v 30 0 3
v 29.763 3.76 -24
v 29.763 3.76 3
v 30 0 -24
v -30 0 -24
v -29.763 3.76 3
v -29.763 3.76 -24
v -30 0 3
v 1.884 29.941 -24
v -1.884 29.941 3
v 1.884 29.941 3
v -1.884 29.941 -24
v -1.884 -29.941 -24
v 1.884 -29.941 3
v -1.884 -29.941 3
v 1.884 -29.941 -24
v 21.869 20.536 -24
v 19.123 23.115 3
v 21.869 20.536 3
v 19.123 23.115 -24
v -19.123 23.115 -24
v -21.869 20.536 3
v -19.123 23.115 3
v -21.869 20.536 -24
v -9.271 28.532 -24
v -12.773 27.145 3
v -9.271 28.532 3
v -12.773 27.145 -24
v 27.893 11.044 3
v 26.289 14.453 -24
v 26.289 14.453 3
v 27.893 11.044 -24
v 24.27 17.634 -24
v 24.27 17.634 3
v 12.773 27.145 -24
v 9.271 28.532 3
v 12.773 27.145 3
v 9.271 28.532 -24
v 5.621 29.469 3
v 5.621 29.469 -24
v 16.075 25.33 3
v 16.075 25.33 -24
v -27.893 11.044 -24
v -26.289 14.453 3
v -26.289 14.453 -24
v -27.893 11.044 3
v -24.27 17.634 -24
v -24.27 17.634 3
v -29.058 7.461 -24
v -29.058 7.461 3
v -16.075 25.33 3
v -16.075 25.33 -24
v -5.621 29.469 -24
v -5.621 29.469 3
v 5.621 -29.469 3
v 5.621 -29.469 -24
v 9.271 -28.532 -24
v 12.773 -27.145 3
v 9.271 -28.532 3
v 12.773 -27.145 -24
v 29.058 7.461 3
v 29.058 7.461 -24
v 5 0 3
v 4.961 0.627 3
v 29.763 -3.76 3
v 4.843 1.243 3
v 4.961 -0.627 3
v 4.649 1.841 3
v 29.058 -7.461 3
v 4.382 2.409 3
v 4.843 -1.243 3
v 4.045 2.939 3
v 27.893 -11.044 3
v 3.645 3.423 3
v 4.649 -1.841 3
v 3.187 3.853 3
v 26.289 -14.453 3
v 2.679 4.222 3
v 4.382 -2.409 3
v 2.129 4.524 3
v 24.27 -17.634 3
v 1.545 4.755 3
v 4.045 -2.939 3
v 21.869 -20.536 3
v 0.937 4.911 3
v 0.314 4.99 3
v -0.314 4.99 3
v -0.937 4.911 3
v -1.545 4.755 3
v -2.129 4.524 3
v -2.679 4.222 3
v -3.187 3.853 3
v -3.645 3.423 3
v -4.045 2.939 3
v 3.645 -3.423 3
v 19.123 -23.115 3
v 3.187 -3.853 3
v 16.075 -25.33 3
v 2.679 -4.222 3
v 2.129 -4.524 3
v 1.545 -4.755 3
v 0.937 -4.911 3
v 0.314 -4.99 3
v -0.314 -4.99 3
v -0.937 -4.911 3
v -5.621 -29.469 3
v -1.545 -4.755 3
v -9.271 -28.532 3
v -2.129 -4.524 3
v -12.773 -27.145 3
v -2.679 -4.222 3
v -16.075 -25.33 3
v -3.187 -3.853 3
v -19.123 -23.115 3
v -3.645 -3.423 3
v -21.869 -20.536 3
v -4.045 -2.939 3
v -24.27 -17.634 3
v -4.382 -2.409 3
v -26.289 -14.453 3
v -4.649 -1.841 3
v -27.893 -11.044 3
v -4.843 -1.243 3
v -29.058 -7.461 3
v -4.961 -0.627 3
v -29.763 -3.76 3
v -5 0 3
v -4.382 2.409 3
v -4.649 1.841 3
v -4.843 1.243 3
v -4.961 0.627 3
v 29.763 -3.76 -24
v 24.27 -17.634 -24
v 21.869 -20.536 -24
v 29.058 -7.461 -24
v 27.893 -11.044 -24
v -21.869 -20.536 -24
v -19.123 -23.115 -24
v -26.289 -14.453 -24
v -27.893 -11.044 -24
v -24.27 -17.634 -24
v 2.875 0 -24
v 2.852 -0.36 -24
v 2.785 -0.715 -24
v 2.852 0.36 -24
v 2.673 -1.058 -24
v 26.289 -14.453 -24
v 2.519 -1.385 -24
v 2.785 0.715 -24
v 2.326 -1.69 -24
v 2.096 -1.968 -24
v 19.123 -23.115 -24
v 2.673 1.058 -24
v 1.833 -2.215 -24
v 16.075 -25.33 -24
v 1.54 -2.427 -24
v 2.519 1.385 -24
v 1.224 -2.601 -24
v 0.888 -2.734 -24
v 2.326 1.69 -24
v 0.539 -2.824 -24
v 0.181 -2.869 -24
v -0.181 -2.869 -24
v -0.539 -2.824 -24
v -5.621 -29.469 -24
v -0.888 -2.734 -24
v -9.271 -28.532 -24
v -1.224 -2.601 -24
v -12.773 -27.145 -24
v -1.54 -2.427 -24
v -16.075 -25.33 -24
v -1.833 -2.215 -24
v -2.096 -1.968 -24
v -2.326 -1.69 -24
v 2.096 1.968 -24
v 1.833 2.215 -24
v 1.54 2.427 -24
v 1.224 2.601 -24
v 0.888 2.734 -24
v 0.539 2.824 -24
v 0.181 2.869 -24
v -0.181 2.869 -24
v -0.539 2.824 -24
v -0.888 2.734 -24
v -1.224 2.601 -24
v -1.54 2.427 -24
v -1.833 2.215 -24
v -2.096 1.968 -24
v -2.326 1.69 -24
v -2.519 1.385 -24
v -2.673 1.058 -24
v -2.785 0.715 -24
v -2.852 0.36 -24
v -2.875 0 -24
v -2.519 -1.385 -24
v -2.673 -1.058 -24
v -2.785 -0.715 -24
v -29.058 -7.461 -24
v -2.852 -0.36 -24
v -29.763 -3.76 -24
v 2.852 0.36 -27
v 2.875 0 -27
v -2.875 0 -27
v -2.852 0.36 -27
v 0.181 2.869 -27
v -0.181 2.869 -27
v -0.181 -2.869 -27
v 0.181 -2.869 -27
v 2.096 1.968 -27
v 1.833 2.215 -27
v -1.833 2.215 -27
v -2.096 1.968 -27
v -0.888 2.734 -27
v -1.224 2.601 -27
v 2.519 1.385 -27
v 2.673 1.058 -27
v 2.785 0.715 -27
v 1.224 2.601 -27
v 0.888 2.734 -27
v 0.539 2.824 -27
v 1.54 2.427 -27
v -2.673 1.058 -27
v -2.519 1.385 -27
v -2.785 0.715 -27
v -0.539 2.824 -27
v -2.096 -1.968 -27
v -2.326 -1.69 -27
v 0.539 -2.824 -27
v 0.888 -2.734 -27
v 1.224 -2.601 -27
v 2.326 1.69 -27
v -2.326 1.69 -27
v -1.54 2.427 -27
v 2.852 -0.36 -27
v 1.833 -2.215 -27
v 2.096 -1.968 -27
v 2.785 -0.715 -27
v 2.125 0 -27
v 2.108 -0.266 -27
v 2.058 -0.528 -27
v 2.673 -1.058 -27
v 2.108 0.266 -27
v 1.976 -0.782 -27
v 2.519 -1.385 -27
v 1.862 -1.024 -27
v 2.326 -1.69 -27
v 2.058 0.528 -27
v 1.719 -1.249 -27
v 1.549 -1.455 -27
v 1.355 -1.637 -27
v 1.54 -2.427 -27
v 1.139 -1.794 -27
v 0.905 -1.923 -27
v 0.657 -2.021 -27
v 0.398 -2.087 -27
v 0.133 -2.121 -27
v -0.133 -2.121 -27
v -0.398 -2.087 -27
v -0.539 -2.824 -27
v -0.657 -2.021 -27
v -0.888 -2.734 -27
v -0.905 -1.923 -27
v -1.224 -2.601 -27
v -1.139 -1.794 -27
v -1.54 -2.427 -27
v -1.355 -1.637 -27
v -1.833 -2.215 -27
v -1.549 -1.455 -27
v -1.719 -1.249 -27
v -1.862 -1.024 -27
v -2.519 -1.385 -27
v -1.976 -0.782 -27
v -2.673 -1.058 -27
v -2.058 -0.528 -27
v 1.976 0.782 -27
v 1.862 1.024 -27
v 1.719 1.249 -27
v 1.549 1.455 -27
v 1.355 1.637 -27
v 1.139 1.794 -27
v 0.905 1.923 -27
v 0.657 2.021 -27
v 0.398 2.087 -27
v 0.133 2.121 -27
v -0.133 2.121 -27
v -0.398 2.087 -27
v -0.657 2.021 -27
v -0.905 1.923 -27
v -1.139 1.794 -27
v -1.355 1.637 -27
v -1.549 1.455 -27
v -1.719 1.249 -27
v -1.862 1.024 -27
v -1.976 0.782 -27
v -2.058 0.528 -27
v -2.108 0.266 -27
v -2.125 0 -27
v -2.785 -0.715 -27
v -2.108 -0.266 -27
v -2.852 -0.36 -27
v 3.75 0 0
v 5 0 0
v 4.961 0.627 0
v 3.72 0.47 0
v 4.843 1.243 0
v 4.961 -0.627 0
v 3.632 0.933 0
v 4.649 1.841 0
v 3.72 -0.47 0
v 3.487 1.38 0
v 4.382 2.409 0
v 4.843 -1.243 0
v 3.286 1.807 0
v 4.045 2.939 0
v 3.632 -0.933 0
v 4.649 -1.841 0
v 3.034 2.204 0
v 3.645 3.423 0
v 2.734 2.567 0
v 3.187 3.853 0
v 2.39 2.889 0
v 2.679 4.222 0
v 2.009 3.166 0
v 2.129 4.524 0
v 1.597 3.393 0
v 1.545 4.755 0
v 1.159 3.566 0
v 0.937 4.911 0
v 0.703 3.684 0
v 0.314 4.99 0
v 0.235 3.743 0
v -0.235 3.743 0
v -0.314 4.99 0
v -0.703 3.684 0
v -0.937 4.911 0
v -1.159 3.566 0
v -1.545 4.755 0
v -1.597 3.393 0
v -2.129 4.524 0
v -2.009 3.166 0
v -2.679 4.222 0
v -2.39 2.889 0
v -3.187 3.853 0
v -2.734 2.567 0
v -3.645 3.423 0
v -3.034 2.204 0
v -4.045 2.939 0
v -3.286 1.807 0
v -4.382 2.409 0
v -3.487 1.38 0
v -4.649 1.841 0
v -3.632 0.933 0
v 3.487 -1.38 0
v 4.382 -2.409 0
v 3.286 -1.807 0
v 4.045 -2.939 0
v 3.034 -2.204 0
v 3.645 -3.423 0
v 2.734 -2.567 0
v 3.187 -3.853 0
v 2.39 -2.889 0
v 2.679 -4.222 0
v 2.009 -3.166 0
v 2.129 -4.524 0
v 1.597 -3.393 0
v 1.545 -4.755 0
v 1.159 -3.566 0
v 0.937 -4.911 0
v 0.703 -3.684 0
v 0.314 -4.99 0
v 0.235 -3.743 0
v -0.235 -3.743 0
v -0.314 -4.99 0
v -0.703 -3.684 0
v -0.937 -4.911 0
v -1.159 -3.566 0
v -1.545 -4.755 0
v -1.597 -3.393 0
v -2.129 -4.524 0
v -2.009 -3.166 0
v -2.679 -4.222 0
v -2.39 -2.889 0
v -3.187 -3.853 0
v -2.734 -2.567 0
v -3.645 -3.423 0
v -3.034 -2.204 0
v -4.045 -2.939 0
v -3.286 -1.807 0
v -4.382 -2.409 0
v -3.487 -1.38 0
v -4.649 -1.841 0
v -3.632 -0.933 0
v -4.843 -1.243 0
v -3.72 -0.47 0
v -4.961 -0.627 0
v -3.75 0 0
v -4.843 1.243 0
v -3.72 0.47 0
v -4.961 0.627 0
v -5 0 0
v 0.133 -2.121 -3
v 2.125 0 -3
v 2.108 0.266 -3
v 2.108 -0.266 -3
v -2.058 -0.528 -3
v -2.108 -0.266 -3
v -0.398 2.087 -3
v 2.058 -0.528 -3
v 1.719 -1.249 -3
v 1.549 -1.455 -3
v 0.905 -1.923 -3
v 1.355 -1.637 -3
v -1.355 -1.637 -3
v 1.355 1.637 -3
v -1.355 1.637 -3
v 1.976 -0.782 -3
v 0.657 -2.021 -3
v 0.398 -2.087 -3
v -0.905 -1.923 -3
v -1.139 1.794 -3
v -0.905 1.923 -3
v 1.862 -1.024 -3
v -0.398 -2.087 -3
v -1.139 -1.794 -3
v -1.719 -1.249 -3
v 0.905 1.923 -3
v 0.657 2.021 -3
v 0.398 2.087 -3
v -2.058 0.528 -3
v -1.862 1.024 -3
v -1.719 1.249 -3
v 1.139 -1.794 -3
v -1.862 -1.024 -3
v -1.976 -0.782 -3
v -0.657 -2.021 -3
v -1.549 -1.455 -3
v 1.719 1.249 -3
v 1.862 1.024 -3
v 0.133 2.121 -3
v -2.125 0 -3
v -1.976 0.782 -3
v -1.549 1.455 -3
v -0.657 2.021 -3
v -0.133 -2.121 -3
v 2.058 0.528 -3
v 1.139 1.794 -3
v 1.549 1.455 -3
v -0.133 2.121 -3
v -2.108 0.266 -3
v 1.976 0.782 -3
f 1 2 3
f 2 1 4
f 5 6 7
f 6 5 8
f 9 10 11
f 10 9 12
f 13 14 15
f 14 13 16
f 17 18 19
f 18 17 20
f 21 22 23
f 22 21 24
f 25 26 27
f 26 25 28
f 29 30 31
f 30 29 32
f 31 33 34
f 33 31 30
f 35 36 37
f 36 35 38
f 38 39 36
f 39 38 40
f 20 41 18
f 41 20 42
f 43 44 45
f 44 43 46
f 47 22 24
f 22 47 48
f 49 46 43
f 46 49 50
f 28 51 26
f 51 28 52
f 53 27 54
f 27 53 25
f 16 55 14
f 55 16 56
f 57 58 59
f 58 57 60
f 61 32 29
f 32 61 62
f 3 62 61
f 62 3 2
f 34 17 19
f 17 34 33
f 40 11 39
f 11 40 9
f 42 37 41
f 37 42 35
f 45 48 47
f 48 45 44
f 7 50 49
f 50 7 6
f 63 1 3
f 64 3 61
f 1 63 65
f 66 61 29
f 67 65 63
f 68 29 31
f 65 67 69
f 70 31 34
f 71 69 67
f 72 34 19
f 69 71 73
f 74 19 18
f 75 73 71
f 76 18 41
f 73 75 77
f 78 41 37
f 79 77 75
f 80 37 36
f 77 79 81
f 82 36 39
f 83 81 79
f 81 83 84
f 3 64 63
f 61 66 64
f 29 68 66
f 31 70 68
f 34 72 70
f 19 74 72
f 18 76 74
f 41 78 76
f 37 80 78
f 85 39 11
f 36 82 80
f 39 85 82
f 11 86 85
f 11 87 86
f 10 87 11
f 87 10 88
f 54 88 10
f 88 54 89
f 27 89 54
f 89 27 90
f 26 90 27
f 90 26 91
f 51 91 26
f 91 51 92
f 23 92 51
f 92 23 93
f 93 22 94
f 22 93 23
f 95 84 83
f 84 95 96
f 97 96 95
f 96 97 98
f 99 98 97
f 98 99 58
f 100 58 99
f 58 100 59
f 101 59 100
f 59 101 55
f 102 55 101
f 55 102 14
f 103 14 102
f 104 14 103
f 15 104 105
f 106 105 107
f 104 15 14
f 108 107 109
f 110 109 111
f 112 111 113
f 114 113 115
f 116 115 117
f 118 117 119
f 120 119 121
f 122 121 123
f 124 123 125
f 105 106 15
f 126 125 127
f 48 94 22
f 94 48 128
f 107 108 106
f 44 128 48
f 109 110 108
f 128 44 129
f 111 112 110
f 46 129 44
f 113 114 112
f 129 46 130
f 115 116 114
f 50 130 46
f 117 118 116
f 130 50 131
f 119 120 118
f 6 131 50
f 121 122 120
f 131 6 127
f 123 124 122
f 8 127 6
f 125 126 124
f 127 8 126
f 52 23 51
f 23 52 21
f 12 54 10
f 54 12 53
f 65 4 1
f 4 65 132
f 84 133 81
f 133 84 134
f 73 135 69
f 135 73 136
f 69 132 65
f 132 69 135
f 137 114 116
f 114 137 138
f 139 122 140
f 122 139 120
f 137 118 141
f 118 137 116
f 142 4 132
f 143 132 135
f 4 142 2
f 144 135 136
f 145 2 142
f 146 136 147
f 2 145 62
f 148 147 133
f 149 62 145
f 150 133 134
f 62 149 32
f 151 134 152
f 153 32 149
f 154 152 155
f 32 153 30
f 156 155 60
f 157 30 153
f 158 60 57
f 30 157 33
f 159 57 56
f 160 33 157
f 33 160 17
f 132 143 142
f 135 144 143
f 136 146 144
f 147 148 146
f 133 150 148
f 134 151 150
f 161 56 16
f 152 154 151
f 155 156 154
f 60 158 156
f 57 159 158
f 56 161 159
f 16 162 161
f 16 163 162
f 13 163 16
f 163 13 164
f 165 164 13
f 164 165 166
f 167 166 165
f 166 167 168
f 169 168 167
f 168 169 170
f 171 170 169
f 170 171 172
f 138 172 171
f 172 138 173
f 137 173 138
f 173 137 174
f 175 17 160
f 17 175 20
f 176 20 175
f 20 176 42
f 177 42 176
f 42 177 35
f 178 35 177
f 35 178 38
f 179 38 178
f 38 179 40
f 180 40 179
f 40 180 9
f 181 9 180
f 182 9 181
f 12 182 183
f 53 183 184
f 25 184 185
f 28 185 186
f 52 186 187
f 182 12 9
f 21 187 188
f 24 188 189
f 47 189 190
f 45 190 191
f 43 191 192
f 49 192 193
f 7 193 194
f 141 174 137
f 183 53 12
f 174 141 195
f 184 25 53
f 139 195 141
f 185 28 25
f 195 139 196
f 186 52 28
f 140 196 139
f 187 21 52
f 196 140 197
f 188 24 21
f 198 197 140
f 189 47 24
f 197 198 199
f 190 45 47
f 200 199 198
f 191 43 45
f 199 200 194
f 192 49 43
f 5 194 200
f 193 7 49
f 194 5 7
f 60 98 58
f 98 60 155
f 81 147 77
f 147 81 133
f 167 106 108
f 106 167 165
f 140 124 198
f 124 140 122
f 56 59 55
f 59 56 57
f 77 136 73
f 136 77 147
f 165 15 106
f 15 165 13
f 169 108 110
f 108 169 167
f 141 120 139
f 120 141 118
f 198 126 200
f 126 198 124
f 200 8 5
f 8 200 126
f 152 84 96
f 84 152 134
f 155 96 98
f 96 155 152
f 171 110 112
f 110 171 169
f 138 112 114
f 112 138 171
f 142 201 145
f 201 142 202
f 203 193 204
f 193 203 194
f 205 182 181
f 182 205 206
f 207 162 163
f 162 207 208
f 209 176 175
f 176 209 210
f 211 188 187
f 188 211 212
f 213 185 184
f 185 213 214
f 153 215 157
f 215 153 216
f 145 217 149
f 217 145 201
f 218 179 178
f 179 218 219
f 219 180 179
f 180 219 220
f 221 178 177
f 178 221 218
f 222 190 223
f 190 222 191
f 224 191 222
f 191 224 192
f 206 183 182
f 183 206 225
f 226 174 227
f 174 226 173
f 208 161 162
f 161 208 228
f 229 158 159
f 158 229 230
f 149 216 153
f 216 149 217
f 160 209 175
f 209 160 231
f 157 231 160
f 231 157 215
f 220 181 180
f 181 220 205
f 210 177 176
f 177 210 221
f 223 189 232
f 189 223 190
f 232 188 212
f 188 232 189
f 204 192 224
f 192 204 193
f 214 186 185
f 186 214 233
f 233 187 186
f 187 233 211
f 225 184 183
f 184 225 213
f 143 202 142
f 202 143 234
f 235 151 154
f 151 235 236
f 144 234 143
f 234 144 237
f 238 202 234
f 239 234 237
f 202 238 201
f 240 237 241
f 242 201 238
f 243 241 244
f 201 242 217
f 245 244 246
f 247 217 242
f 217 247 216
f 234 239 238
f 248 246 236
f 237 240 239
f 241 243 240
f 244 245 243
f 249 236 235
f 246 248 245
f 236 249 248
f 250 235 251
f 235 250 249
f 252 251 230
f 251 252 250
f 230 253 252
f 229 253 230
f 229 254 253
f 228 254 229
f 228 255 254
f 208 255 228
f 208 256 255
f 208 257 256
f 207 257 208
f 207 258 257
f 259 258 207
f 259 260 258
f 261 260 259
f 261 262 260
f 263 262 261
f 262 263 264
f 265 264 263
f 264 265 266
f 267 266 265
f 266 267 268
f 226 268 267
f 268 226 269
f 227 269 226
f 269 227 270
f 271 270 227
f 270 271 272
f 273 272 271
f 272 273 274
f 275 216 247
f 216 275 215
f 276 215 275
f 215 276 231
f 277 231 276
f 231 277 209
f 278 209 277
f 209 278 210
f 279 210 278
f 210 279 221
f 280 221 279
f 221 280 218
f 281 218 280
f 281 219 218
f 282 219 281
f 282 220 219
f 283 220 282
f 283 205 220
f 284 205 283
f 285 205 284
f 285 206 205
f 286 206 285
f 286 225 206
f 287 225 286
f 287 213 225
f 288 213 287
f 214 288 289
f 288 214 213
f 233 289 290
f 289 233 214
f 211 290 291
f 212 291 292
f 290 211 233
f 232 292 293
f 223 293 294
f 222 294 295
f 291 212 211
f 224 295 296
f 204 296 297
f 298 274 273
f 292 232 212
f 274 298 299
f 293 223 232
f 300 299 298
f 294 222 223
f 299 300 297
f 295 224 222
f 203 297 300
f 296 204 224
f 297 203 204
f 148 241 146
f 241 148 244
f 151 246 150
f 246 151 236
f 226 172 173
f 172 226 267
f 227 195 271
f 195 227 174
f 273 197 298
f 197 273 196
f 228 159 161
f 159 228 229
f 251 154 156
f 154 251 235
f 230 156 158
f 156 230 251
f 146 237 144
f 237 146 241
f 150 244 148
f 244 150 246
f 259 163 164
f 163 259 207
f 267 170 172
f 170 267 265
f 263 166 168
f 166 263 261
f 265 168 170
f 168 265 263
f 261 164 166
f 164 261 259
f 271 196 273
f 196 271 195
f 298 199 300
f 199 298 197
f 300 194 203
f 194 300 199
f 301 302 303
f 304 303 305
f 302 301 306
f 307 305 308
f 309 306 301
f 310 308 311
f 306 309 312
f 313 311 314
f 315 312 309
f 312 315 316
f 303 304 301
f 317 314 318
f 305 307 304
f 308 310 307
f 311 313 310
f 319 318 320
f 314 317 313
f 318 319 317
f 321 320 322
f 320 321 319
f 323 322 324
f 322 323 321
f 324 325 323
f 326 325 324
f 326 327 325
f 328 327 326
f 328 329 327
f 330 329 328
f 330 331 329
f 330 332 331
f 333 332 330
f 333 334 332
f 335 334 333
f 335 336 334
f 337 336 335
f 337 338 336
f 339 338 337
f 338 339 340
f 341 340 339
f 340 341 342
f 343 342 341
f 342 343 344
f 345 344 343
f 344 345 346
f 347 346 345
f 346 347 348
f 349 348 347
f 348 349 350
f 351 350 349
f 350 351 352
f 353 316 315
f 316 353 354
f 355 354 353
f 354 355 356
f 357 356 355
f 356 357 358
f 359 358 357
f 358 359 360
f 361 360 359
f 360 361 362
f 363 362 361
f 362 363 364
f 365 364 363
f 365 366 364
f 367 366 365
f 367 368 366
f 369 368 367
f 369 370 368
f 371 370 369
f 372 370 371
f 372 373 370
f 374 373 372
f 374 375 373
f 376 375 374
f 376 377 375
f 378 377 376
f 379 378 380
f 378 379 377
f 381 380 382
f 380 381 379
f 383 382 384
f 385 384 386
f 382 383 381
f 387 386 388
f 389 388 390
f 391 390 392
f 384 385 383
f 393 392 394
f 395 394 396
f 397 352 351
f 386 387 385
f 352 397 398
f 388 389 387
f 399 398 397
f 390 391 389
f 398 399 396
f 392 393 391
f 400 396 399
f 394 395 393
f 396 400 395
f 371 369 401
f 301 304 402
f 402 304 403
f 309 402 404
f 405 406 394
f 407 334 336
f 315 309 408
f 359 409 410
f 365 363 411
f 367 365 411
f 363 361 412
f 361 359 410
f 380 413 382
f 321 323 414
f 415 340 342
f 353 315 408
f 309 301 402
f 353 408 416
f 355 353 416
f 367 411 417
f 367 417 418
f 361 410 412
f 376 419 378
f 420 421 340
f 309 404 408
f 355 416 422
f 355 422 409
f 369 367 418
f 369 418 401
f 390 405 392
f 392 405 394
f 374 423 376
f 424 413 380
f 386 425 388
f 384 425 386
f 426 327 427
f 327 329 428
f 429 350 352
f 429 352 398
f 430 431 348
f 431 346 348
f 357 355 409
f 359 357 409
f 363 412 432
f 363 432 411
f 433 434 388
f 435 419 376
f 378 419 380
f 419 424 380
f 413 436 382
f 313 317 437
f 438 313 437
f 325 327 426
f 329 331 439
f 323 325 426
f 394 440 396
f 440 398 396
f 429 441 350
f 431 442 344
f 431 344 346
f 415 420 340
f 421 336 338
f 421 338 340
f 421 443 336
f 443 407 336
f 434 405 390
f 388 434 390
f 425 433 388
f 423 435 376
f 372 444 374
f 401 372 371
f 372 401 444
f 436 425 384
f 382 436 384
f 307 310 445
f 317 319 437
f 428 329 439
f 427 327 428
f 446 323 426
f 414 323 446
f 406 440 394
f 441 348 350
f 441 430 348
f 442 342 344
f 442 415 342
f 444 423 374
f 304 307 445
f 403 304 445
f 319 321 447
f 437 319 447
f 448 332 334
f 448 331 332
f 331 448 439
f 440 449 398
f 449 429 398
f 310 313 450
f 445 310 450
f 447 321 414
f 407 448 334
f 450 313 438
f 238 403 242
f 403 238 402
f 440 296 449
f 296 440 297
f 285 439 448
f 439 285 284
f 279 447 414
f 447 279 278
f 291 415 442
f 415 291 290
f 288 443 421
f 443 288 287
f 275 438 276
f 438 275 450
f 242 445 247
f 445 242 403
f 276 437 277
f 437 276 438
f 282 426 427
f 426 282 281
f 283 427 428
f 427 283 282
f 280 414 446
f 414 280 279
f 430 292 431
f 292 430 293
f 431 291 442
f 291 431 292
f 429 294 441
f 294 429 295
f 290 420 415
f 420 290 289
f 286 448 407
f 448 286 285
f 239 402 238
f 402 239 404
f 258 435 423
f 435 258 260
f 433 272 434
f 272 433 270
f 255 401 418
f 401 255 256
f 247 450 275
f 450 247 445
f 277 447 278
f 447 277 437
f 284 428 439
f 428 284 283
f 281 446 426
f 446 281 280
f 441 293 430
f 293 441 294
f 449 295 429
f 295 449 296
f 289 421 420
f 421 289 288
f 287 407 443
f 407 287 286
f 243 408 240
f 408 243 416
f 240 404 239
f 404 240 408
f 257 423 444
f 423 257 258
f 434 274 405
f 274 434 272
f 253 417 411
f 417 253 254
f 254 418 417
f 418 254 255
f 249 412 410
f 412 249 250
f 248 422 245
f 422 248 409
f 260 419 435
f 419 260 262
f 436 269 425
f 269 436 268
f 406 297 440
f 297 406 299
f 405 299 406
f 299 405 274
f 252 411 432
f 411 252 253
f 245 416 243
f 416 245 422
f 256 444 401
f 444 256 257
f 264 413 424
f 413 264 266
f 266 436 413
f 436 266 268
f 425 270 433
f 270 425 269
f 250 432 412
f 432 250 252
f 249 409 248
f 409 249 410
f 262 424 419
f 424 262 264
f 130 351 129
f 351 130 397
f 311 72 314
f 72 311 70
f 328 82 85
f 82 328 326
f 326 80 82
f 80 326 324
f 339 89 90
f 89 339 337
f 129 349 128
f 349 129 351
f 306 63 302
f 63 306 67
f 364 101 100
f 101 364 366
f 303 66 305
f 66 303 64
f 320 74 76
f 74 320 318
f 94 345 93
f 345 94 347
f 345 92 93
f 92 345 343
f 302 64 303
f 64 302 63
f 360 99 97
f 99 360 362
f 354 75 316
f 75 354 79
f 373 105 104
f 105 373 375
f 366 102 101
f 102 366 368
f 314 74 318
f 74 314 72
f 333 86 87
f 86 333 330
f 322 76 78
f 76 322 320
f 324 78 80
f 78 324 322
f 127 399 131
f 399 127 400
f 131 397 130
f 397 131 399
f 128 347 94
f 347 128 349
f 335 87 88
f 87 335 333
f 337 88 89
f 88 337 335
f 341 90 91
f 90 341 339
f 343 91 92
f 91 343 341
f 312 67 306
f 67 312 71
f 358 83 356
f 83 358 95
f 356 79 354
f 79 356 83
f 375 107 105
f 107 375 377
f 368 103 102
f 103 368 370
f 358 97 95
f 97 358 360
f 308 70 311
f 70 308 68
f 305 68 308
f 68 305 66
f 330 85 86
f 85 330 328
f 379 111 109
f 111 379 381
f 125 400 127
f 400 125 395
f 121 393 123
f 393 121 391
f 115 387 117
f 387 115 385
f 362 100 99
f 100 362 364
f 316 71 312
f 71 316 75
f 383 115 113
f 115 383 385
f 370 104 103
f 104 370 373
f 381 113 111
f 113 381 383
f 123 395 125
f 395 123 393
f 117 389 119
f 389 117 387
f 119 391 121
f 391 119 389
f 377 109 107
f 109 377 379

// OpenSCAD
$fn = 50;

difference() {
	union() {
		translate(v = [0, 0, -24.0]) {
			cylinder(h = 27, r = 30.0);
		}
		#translate(v = [0, 0, -27.0]) {
			cylinder(h = 27, r = 2.875);
		}
	}
	union() {
		translate(v = [0, 0, 0]) {
			rotate(a = [0, 0, 0]) {
				difference() {
					union() {
						translate(v = [0, 0, -27.0]) {
							cylinder(h = 27, r = 2.0);
						}
						translate(v = [0, 0, -3]) {
							cylinder(h = 3, r1 = 2.125, r2 = 3.75);
						}
						translate(v = [0, 0, -27.0]) {
							cylinder(h = 27, r = 2.125);
						}
						translate(v = [0, 0, -27.0]) {
							cylinder(h = 27, r = 2.0);
						}
					}
					union();
				}
			}
		}
		#cylinder(h = 3, r = 5.0);
	}
}
